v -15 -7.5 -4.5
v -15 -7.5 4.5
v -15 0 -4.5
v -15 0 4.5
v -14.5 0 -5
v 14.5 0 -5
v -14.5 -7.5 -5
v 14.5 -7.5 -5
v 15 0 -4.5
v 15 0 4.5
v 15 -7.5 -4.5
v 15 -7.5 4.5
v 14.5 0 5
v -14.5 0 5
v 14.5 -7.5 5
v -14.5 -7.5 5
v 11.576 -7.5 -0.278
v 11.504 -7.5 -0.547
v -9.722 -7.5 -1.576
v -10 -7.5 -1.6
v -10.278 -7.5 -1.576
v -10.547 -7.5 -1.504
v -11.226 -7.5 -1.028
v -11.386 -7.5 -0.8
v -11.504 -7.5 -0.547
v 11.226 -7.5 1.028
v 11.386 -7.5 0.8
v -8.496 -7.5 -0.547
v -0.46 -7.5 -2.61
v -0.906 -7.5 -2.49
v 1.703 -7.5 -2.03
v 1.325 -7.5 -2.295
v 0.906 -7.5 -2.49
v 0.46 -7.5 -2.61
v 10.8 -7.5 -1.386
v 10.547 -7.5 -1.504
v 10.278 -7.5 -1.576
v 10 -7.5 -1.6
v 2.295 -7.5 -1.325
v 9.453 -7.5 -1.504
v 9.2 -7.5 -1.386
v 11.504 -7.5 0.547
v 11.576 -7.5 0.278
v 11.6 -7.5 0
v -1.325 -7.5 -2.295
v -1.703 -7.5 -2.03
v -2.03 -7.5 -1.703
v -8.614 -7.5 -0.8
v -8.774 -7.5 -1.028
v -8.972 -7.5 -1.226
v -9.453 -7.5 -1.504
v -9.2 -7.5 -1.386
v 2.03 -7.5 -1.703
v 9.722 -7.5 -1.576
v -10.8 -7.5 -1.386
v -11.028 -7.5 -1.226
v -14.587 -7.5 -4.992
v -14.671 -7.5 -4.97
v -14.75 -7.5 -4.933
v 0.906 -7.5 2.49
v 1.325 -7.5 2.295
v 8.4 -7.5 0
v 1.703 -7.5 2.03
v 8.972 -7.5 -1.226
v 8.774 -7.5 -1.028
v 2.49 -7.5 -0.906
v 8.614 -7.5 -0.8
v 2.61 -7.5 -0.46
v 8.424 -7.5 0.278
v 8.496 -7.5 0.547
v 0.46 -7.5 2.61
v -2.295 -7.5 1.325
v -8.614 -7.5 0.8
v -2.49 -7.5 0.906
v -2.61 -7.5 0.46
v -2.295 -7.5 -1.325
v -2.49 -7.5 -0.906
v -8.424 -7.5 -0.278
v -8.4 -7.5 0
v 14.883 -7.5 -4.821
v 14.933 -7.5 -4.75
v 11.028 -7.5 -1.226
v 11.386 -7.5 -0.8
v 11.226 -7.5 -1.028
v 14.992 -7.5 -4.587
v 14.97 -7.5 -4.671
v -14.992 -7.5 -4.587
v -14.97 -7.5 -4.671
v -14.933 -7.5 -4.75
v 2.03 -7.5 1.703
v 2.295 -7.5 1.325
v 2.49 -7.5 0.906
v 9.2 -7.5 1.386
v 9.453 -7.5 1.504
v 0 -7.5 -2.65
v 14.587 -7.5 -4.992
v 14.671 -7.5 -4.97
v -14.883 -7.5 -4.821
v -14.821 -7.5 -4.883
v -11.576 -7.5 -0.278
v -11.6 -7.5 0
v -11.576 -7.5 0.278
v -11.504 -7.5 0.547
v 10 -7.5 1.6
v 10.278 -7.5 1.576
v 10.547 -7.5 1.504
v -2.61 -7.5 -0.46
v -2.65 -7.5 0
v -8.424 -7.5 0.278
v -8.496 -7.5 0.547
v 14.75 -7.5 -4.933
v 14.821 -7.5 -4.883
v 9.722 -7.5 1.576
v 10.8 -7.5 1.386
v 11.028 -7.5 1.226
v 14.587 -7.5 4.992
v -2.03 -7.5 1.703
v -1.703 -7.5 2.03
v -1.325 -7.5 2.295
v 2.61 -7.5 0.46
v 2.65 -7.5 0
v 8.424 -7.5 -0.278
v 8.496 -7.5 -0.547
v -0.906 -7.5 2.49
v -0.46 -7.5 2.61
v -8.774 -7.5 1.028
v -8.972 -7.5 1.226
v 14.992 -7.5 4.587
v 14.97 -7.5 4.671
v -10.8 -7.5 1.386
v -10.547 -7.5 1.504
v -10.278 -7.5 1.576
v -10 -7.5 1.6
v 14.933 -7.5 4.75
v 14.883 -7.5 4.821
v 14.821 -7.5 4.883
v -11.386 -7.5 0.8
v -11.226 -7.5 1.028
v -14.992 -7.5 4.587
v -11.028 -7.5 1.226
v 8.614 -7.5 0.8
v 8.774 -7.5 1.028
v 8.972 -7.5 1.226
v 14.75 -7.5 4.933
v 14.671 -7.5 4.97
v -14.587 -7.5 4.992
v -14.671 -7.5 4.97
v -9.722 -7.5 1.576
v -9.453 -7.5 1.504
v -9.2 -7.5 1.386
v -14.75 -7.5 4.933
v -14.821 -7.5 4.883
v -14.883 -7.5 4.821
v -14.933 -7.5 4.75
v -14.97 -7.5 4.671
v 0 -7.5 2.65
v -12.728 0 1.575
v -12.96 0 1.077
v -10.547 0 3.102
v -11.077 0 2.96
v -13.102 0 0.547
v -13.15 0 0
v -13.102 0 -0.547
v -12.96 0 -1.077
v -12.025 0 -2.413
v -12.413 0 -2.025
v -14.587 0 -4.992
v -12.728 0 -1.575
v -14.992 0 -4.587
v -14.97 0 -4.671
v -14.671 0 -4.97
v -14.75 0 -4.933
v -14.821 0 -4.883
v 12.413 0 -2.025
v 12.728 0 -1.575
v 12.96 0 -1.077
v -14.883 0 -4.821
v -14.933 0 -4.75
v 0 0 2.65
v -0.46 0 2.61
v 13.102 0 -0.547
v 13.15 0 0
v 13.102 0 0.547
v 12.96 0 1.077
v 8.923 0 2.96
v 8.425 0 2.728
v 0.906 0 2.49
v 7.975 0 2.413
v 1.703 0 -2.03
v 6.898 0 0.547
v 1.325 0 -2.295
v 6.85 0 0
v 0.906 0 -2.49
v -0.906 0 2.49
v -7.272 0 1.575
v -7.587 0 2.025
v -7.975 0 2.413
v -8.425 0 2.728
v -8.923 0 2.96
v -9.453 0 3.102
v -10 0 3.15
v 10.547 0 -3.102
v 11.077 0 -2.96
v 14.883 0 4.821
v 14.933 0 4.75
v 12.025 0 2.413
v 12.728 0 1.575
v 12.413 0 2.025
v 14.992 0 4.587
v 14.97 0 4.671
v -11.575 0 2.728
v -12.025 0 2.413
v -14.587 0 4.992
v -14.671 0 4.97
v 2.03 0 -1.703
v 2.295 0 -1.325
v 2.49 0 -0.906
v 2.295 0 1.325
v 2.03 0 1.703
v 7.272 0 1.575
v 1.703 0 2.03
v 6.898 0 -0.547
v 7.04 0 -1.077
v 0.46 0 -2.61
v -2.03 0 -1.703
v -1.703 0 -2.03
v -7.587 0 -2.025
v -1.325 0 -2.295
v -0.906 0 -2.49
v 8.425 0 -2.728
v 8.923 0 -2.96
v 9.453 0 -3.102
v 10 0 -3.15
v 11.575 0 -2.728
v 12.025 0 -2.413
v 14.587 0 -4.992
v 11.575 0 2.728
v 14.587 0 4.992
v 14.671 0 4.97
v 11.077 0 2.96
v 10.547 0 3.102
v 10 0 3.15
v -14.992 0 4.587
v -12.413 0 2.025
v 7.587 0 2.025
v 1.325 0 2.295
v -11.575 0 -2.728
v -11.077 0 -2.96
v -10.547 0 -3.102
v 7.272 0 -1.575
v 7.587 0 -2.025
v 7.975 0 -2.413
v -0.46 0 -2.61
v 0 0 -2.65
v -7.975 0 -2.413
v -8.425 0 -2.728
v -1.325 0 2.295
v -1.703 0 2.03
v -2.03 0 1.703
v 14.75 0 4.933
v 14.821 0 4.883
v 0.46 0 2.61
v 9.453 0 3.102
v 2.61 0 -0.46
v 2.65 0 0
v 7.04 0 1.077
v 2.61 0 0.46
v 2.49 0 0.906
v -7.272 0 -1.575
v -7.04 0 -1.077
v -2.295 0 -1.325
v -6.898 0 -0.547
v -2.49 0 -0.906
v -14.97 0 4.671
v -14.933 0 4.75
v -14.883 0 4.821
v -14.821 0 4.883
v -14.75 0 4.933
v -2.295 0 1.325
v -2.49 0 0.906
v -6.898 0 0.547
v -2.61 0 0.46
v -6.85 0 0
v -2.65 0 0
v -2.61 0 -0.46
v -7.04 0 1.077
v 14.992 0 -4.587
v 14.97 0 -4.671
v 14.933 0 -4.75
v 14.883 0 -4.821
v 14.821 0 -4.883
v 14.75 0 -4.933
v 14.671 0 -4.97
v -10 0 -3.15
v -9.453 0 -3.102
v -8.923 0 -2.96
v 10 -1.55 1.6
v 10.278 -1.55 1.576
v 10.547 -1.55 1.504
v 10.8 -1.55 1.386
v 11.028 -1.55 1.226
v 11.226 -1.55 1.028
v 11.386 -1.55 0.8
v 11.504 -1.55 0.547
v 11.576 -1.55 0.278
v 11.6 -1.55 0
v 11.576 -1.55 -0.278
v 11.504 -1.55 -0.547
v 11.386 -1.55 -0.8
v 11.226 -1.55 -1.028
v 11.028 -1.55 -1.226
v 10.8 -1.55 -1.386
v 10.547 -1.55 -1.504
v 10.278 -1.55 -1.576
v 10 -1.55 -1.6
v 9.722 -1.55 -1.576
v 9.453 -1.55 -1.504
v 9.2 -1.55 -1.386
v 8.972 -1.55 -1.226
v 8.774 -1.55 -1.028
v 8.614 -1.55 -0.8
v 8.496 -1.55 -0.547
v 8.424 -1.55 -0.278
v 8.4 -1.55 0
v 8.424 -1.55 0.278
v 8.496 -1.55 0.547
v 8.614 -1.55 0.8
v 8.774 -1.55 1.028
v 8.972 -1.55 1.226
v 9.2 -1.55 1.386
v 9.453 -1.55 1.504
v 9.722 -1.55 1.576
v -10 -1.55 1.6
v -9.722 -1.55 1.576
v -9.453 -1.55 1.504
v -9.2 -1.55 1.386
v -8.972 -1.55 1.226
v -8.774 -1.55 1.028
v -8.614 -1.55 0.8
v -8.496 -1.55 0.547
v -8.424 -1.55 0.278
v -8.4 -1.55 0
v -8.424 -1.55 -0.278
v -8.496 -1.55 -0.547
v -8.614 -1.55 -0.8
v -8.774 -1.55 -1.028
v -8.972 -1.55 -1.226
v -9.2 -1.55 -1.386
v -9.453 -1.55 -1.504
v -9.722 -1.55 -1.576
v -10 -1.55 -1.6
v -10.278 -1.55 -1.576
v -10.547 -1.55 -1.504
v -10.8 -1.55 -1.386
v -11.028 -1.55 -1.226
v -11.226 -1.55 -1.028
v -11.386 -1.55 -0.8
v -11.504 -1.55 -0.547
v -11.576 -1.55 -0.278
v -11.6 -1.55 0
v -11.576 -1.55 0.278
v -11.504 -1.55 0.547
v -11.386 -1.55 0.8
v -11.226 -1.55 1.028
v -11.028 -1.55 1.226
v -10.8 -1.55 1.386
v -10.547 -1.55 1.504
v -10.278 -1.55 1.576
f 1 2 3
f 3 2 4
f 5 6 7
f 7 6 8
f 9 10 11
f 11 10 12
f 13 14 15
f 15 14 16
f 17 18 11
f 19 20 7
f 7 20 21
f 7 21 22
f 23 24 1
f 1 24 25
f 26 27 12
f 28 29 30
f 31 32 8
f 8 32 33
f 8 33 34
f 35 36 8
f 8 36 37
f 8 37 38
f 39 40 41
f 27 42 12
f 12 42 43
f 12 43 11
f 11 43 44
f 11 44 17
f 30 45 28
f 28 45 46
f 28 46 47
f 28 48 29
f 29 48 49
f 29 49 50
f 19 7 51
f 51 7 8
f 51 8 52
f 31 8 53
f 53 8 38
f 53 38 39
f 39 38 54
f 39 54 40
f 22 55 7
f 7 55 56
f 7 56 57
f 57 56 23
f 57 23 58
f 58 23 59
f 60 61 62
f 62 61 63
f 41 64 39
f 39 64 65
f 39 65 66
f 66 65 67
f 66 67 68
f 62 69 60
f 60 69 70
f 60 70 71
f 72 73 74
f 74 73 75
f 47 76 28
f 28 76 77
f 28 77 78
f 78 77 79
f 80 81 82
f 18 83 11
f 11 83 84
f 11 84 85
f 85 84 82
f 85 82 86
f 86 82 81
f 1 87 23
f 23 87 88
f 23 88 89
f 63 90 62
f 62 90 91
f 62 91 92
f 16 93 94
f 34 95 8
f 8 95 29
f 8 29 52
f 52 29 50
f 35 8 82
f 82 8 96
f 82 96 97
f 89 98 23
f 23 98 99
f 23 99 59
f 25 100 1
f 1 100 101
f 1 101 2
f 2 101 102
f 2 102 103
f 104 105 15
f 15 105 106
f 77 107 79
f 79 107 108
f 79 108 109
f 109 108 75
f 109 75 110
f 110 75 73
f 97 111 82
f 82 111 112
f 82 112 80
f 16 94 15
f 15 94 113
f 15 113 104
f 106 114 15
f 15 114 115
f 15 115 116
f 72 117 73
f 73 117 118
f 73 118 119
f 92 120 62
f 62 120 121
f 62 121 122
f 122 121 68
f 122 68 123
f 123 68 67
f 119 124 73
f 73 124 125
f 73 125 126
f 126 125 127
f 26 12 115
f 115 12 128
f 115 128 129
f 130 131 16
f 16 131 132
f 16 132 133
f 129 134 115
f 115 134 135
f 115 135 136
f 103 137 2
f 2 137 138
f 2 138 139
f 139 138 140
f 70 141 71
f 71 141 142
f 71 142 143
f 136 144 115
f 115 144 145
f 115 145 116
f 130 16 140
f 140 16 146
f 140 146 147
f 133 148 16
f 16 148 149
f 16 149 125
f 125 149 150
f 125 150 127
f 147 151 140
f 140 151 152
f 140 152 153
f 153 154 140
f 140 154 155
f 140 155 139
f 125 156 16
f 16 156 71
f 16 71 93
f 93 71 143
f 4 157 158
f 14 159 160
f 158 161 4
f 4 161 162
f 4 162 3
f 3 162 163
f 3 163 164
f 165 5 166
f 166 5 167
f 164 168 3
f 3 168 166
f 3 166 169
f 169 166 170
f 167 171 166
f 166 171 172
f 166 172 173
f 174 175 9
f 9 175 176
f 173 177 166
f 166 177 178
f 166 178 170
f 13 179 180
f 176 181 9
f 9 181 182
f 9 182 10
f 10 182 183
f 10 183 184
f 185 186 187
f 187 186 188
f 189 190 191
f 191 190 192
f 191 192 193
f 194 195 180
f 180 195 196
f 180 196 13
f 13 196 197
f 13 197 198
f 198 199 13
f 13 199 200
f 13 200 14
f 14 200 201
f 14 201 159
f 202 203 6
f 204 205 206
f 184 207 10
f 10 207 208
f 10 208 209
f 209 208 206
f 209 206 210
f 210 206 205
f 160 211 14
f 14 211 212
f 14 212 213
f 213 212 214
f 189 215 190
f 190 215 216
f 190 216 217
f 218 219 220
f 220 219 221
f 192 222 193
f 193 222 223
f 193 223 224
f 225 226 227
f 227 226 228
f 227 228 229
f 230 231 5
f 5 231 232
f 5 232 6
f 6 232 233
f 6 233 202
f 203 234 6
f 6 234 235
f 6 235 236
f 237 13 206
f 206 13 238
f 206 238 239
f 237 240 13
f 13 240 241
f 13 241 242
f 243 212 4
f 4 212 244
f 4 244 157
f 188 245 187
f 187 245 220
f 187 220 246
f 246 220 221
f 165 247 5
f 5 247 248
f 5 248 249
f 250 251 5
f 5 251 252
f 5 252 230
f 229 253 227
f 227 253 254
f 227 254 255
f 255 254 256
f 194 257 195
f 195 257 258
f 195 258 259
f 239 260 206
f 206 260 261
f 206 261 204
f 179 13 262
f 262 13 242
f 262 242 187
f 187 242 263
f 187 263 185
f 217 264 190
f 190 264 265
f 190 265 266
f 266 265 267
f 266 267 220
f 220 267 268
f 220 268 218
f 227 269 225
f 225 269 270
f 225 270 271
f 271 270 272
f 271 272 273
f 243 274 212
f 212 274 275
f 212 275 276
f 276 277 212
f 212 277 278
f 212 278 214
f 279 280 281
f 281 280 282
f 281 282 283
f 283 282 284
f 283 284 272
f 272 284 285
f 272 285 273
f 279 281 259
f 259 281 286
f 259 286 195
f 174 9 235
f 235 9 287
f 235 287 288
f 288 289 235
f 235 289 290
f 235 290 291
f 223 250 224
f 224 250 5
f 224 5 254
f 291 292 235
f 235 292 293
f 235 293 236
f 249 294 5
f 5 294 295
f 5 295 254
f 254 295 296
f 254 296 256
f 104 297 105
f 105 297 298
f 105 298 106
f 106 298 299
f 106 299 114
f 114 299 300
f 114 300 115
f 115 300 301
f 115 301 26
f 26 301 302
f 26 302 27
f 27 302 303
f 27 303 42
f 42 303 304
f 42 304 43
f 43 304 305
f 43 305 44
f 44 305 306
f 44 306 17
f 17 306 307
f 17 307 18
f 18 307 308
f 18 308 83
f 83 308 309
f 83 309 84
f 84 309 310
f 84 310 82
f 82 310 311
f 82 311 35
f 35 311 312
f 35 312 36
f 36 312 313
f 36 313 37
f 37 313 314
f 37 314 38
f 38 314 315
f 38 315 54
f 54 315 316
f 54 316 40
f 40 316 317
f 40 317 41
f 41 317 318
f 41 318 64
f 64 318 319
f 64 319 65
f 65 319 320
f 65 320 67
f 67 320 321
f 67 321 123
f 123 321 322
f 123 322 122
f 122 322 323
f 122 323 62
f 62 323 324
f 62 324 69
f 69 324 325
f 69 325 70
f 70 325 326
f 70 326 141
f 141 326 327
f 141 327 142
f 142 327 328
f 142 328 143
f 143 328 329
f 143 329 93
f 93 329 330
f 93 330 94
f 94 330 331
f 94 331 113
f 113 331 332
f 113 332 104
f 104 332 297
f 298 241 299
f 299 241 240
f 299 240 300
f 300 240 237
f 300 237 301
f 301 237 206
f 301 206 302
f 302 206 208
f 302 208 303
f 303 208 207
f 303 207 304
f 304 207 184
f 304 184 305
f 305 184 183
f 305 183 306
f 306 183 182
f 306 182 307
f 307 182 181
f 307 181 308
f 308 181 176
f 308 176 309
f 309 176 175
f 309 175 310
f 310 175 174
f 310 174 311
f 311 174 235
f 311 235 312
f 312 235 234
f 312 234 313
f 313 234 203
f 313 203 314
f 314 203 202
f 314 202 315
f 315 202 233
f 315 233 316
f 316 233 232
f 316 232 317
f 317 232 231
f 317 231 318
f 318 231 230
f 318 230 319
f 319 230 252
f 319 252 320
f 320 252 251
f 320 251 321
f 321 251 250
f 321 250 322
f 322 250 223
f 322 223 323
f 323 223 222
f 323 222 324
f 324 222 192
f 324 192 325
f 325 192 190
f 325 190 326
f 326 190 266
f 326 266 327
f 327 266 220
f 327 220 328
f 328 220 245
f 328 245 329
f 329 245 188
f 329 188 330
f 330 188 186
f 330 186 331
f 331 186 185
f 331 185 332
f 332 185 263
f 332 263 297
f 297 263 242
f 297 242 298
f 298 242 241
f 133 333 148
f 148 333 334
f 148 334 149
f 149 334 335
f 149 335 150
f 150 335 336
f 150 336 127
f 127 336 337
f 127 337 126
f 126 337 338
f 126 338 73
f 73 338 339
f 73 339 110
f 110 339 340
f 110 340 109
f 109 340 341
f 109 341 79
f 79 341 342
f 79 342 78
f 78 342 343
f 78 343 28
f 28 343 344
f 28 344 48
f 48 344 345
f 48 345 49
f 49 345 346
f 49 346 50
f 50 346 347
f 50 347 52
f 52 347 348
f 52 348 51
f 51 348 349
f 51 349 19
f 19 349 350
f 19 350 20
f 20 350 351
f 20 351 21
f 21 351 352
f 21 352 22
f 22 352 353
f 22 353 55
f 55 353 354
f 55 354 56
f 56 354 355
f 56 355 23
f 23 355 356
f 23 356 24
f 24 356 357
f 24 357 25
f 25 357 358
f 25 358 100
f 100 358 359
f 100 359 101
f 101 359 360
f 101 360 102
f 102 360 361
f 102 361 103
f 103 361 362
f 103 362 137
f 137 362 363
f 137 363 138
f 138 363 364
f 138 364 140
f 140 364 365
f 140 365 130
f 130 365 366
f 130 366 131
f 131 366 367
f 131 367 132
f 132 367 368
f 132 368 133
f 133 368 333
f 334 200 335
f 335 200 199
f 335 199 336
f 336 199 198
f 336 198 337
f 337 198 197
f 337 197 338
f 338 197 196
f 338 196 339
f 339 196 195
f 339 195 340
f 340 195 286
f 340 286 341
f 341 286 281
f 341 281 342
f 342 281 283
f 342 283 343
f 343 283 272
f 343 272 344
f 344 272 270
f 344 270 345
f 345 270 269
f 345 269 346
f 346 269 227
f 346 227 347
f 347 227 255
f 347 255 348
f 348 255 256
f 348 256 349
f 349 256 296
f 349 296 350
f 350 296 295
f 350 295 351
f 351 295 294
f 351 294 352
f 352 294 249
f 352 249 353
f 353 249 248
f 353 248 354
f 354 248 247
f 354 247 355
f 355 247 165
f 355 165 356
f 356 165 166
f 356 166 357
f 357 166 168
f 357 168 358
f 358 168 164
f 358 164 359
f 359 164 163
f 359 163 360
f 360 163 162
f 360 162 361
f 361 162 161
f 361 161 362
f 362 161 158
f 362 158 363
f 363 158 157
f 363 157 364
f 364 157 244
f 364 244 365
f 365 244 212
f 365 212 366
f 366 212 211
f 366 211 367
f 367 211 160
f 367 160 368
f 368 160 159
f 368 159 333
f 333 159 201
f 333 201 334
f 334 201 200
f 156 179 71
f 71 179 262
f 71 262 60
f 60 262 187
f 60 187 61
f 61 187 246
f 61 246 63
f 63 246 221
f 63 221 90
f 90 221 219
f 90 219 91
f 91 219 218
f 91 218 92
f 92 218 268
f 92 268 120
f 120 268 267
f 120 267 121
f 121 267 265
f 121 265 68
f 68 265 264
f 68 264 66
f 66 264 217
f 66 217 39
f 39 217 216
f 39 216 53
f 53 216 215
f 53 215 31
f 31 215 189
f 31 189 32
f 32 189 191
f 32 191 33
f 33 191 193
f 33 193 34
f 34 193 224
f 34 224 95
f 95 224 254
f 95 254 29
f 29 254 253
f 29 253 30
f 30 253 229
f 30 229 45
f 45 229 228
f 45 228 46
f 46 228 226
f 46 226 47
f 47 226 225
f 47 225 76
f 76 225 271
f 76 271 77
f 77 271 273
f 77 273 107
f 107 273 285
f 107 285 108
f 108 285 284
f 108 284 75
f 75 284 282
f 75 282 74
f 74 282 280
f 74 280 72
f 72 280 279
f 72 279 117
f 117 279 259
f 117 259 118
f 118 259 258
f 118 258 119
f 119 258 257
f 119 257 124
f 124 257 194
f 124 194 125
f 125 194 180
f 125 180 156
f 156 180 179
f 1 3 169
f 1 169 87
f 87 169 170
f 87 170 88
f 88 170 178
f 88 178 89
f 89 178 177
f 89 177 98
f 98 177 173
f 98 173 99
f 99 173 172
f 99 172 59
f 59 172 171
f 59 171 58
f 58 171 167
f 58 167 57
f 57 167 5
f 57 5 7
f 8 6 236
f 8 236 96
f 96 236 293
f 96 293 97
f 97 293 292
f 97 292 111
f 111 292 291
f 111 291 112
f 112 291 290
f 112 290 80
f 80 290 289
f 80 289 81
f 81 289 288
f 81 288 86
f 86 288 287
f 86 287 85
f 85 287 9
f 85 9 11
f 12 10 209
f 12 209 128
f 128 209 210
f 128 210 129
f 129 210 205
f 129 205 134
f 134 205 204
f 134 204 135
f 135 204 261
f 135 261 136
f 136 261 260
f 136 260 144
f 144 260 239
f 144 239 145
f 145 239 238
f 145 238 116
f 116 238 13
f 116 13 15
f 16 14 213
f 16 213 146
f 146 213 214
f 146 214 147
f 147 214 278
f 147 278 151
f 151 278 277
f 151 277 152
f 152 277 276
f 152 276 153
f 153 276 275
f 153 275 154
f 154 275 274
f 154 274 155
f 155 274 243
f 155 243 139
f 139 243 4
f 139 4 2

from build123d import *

# Parameters (mm, degrees)
SKETCH1_W                                       = 30
SKETCH1_H                                       = 10
BOSS_EXTRUDE1_DEPTH                             = 7.5
CSK_FOR_M3_FLAT_HEAD_MACHINE_SCREW1_D           = 3.2
CSK_FOR_M3_FLAT_HEAD_MACHINE_SCREW1_CSINK_D     = 6.3
CSK_FOR_M3_FLAT_HEAD_MACHINE_SCREW1_CSINK_ANGLE = 90
M5_CLEARANCE_HOLE1_D                            = 5.3
FILLET1_R                                       = 0.5


with BuildPart() as part:
    # Sketch1 → Boss-Extrude1 (new body)
    with BuildSketch(Plane(origin=(0, 0, 0), x_dir=(1, 0, 0), z_dir=(0, 1, 0))):
        Rectangle(SKETCH1_W, SKETCH1_H)
    extrude(amount=-BOSS_EXTRUDE1_DEPTH)

    # CSK for M3 Flat Head Machine Screw1 (through all)
    with Locations(Plane(origin=(-10, 0, 0), x_dir=(0, 0, 1), z_dir=(0, 1, 0))):
        with Locations((0, 0), (0, 20)):
            CounterSinkHole(CSK_FOR_M3_FLAT_HEAD_MACHINE_SCREW1_D / 2, CSK_FOR_M3_FLAT_HEAD_MACHINE_SCREW1_CSINK_D / 2, counter_sink_angle=CSK_FOR_M3_FLAT_HEAD_MACHINE_SCREW1_CSINK_ANGLE)

    # M5 Clearance Hole1 (through all)
    with Locations(Plane.ZX):
        with Locations((0, 0)):
            Hole(M5_CLEARANCE_HOLE1_D / 2)

    # Fillet1
    fillet1_edges = [part.edges().sort_by_distance(p)[0] for p in [
        (-15, -3.75, -5),
        (15, -3.75, -5),
        (15, -3.75, 5),
        (-15, -3.75, 5),
    ]]
    fillet(fillet1_edges, radius=FILLET1_R)


solid = part.part
